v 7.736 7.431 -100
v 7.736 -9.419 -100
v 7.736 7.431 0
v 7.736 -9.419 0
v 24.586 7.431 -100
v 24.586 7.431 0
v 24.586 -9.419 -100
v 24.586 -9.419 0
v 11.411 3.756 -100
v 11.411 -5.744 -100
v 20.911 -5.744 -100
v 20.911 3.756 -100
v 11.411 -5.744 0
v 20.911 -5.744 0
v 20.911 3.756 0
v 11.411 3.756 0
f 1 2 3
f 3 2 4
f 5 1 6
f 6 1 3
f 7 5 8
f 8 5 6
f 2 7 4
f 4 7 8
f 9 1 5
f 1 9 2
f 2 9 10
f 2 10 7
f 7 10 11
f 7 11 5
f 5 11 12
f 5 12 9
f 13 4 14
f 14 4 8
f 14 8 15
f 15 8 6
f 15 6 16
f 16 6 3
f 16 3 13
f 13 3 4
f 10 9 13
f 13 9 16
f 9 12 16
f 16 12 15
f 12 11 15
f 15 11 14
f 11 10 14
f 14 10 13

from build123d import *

# Parameters (mm, degrees)
SKETCH1_W           = 16.85
SKETCH1_H           = 16.85
SKETCH1_W_2         = 9.5
SKETCH1_H_2         = 9.5
BOSS_EXTRUDE1_DEPTH = 100


with BuildPart() as part:
    # Sketch1 → Boss-Extrude1 (new body)
    with BuildSketch(Plane.XY):
        with Locations((16.160752053, -0.994216696)):
            Rectangle(SKETCH1_W, SKETCH1_H)
        with Locations((16.160752053, -0.994216696)):
            Rectangle(SKETCH1_W_2, SKETCH1_H_2, mode=Mode.SUBTRACT)
    extrude(amount=-BOSS_EXTRUDE1_DEPTH)


solid = part.part
